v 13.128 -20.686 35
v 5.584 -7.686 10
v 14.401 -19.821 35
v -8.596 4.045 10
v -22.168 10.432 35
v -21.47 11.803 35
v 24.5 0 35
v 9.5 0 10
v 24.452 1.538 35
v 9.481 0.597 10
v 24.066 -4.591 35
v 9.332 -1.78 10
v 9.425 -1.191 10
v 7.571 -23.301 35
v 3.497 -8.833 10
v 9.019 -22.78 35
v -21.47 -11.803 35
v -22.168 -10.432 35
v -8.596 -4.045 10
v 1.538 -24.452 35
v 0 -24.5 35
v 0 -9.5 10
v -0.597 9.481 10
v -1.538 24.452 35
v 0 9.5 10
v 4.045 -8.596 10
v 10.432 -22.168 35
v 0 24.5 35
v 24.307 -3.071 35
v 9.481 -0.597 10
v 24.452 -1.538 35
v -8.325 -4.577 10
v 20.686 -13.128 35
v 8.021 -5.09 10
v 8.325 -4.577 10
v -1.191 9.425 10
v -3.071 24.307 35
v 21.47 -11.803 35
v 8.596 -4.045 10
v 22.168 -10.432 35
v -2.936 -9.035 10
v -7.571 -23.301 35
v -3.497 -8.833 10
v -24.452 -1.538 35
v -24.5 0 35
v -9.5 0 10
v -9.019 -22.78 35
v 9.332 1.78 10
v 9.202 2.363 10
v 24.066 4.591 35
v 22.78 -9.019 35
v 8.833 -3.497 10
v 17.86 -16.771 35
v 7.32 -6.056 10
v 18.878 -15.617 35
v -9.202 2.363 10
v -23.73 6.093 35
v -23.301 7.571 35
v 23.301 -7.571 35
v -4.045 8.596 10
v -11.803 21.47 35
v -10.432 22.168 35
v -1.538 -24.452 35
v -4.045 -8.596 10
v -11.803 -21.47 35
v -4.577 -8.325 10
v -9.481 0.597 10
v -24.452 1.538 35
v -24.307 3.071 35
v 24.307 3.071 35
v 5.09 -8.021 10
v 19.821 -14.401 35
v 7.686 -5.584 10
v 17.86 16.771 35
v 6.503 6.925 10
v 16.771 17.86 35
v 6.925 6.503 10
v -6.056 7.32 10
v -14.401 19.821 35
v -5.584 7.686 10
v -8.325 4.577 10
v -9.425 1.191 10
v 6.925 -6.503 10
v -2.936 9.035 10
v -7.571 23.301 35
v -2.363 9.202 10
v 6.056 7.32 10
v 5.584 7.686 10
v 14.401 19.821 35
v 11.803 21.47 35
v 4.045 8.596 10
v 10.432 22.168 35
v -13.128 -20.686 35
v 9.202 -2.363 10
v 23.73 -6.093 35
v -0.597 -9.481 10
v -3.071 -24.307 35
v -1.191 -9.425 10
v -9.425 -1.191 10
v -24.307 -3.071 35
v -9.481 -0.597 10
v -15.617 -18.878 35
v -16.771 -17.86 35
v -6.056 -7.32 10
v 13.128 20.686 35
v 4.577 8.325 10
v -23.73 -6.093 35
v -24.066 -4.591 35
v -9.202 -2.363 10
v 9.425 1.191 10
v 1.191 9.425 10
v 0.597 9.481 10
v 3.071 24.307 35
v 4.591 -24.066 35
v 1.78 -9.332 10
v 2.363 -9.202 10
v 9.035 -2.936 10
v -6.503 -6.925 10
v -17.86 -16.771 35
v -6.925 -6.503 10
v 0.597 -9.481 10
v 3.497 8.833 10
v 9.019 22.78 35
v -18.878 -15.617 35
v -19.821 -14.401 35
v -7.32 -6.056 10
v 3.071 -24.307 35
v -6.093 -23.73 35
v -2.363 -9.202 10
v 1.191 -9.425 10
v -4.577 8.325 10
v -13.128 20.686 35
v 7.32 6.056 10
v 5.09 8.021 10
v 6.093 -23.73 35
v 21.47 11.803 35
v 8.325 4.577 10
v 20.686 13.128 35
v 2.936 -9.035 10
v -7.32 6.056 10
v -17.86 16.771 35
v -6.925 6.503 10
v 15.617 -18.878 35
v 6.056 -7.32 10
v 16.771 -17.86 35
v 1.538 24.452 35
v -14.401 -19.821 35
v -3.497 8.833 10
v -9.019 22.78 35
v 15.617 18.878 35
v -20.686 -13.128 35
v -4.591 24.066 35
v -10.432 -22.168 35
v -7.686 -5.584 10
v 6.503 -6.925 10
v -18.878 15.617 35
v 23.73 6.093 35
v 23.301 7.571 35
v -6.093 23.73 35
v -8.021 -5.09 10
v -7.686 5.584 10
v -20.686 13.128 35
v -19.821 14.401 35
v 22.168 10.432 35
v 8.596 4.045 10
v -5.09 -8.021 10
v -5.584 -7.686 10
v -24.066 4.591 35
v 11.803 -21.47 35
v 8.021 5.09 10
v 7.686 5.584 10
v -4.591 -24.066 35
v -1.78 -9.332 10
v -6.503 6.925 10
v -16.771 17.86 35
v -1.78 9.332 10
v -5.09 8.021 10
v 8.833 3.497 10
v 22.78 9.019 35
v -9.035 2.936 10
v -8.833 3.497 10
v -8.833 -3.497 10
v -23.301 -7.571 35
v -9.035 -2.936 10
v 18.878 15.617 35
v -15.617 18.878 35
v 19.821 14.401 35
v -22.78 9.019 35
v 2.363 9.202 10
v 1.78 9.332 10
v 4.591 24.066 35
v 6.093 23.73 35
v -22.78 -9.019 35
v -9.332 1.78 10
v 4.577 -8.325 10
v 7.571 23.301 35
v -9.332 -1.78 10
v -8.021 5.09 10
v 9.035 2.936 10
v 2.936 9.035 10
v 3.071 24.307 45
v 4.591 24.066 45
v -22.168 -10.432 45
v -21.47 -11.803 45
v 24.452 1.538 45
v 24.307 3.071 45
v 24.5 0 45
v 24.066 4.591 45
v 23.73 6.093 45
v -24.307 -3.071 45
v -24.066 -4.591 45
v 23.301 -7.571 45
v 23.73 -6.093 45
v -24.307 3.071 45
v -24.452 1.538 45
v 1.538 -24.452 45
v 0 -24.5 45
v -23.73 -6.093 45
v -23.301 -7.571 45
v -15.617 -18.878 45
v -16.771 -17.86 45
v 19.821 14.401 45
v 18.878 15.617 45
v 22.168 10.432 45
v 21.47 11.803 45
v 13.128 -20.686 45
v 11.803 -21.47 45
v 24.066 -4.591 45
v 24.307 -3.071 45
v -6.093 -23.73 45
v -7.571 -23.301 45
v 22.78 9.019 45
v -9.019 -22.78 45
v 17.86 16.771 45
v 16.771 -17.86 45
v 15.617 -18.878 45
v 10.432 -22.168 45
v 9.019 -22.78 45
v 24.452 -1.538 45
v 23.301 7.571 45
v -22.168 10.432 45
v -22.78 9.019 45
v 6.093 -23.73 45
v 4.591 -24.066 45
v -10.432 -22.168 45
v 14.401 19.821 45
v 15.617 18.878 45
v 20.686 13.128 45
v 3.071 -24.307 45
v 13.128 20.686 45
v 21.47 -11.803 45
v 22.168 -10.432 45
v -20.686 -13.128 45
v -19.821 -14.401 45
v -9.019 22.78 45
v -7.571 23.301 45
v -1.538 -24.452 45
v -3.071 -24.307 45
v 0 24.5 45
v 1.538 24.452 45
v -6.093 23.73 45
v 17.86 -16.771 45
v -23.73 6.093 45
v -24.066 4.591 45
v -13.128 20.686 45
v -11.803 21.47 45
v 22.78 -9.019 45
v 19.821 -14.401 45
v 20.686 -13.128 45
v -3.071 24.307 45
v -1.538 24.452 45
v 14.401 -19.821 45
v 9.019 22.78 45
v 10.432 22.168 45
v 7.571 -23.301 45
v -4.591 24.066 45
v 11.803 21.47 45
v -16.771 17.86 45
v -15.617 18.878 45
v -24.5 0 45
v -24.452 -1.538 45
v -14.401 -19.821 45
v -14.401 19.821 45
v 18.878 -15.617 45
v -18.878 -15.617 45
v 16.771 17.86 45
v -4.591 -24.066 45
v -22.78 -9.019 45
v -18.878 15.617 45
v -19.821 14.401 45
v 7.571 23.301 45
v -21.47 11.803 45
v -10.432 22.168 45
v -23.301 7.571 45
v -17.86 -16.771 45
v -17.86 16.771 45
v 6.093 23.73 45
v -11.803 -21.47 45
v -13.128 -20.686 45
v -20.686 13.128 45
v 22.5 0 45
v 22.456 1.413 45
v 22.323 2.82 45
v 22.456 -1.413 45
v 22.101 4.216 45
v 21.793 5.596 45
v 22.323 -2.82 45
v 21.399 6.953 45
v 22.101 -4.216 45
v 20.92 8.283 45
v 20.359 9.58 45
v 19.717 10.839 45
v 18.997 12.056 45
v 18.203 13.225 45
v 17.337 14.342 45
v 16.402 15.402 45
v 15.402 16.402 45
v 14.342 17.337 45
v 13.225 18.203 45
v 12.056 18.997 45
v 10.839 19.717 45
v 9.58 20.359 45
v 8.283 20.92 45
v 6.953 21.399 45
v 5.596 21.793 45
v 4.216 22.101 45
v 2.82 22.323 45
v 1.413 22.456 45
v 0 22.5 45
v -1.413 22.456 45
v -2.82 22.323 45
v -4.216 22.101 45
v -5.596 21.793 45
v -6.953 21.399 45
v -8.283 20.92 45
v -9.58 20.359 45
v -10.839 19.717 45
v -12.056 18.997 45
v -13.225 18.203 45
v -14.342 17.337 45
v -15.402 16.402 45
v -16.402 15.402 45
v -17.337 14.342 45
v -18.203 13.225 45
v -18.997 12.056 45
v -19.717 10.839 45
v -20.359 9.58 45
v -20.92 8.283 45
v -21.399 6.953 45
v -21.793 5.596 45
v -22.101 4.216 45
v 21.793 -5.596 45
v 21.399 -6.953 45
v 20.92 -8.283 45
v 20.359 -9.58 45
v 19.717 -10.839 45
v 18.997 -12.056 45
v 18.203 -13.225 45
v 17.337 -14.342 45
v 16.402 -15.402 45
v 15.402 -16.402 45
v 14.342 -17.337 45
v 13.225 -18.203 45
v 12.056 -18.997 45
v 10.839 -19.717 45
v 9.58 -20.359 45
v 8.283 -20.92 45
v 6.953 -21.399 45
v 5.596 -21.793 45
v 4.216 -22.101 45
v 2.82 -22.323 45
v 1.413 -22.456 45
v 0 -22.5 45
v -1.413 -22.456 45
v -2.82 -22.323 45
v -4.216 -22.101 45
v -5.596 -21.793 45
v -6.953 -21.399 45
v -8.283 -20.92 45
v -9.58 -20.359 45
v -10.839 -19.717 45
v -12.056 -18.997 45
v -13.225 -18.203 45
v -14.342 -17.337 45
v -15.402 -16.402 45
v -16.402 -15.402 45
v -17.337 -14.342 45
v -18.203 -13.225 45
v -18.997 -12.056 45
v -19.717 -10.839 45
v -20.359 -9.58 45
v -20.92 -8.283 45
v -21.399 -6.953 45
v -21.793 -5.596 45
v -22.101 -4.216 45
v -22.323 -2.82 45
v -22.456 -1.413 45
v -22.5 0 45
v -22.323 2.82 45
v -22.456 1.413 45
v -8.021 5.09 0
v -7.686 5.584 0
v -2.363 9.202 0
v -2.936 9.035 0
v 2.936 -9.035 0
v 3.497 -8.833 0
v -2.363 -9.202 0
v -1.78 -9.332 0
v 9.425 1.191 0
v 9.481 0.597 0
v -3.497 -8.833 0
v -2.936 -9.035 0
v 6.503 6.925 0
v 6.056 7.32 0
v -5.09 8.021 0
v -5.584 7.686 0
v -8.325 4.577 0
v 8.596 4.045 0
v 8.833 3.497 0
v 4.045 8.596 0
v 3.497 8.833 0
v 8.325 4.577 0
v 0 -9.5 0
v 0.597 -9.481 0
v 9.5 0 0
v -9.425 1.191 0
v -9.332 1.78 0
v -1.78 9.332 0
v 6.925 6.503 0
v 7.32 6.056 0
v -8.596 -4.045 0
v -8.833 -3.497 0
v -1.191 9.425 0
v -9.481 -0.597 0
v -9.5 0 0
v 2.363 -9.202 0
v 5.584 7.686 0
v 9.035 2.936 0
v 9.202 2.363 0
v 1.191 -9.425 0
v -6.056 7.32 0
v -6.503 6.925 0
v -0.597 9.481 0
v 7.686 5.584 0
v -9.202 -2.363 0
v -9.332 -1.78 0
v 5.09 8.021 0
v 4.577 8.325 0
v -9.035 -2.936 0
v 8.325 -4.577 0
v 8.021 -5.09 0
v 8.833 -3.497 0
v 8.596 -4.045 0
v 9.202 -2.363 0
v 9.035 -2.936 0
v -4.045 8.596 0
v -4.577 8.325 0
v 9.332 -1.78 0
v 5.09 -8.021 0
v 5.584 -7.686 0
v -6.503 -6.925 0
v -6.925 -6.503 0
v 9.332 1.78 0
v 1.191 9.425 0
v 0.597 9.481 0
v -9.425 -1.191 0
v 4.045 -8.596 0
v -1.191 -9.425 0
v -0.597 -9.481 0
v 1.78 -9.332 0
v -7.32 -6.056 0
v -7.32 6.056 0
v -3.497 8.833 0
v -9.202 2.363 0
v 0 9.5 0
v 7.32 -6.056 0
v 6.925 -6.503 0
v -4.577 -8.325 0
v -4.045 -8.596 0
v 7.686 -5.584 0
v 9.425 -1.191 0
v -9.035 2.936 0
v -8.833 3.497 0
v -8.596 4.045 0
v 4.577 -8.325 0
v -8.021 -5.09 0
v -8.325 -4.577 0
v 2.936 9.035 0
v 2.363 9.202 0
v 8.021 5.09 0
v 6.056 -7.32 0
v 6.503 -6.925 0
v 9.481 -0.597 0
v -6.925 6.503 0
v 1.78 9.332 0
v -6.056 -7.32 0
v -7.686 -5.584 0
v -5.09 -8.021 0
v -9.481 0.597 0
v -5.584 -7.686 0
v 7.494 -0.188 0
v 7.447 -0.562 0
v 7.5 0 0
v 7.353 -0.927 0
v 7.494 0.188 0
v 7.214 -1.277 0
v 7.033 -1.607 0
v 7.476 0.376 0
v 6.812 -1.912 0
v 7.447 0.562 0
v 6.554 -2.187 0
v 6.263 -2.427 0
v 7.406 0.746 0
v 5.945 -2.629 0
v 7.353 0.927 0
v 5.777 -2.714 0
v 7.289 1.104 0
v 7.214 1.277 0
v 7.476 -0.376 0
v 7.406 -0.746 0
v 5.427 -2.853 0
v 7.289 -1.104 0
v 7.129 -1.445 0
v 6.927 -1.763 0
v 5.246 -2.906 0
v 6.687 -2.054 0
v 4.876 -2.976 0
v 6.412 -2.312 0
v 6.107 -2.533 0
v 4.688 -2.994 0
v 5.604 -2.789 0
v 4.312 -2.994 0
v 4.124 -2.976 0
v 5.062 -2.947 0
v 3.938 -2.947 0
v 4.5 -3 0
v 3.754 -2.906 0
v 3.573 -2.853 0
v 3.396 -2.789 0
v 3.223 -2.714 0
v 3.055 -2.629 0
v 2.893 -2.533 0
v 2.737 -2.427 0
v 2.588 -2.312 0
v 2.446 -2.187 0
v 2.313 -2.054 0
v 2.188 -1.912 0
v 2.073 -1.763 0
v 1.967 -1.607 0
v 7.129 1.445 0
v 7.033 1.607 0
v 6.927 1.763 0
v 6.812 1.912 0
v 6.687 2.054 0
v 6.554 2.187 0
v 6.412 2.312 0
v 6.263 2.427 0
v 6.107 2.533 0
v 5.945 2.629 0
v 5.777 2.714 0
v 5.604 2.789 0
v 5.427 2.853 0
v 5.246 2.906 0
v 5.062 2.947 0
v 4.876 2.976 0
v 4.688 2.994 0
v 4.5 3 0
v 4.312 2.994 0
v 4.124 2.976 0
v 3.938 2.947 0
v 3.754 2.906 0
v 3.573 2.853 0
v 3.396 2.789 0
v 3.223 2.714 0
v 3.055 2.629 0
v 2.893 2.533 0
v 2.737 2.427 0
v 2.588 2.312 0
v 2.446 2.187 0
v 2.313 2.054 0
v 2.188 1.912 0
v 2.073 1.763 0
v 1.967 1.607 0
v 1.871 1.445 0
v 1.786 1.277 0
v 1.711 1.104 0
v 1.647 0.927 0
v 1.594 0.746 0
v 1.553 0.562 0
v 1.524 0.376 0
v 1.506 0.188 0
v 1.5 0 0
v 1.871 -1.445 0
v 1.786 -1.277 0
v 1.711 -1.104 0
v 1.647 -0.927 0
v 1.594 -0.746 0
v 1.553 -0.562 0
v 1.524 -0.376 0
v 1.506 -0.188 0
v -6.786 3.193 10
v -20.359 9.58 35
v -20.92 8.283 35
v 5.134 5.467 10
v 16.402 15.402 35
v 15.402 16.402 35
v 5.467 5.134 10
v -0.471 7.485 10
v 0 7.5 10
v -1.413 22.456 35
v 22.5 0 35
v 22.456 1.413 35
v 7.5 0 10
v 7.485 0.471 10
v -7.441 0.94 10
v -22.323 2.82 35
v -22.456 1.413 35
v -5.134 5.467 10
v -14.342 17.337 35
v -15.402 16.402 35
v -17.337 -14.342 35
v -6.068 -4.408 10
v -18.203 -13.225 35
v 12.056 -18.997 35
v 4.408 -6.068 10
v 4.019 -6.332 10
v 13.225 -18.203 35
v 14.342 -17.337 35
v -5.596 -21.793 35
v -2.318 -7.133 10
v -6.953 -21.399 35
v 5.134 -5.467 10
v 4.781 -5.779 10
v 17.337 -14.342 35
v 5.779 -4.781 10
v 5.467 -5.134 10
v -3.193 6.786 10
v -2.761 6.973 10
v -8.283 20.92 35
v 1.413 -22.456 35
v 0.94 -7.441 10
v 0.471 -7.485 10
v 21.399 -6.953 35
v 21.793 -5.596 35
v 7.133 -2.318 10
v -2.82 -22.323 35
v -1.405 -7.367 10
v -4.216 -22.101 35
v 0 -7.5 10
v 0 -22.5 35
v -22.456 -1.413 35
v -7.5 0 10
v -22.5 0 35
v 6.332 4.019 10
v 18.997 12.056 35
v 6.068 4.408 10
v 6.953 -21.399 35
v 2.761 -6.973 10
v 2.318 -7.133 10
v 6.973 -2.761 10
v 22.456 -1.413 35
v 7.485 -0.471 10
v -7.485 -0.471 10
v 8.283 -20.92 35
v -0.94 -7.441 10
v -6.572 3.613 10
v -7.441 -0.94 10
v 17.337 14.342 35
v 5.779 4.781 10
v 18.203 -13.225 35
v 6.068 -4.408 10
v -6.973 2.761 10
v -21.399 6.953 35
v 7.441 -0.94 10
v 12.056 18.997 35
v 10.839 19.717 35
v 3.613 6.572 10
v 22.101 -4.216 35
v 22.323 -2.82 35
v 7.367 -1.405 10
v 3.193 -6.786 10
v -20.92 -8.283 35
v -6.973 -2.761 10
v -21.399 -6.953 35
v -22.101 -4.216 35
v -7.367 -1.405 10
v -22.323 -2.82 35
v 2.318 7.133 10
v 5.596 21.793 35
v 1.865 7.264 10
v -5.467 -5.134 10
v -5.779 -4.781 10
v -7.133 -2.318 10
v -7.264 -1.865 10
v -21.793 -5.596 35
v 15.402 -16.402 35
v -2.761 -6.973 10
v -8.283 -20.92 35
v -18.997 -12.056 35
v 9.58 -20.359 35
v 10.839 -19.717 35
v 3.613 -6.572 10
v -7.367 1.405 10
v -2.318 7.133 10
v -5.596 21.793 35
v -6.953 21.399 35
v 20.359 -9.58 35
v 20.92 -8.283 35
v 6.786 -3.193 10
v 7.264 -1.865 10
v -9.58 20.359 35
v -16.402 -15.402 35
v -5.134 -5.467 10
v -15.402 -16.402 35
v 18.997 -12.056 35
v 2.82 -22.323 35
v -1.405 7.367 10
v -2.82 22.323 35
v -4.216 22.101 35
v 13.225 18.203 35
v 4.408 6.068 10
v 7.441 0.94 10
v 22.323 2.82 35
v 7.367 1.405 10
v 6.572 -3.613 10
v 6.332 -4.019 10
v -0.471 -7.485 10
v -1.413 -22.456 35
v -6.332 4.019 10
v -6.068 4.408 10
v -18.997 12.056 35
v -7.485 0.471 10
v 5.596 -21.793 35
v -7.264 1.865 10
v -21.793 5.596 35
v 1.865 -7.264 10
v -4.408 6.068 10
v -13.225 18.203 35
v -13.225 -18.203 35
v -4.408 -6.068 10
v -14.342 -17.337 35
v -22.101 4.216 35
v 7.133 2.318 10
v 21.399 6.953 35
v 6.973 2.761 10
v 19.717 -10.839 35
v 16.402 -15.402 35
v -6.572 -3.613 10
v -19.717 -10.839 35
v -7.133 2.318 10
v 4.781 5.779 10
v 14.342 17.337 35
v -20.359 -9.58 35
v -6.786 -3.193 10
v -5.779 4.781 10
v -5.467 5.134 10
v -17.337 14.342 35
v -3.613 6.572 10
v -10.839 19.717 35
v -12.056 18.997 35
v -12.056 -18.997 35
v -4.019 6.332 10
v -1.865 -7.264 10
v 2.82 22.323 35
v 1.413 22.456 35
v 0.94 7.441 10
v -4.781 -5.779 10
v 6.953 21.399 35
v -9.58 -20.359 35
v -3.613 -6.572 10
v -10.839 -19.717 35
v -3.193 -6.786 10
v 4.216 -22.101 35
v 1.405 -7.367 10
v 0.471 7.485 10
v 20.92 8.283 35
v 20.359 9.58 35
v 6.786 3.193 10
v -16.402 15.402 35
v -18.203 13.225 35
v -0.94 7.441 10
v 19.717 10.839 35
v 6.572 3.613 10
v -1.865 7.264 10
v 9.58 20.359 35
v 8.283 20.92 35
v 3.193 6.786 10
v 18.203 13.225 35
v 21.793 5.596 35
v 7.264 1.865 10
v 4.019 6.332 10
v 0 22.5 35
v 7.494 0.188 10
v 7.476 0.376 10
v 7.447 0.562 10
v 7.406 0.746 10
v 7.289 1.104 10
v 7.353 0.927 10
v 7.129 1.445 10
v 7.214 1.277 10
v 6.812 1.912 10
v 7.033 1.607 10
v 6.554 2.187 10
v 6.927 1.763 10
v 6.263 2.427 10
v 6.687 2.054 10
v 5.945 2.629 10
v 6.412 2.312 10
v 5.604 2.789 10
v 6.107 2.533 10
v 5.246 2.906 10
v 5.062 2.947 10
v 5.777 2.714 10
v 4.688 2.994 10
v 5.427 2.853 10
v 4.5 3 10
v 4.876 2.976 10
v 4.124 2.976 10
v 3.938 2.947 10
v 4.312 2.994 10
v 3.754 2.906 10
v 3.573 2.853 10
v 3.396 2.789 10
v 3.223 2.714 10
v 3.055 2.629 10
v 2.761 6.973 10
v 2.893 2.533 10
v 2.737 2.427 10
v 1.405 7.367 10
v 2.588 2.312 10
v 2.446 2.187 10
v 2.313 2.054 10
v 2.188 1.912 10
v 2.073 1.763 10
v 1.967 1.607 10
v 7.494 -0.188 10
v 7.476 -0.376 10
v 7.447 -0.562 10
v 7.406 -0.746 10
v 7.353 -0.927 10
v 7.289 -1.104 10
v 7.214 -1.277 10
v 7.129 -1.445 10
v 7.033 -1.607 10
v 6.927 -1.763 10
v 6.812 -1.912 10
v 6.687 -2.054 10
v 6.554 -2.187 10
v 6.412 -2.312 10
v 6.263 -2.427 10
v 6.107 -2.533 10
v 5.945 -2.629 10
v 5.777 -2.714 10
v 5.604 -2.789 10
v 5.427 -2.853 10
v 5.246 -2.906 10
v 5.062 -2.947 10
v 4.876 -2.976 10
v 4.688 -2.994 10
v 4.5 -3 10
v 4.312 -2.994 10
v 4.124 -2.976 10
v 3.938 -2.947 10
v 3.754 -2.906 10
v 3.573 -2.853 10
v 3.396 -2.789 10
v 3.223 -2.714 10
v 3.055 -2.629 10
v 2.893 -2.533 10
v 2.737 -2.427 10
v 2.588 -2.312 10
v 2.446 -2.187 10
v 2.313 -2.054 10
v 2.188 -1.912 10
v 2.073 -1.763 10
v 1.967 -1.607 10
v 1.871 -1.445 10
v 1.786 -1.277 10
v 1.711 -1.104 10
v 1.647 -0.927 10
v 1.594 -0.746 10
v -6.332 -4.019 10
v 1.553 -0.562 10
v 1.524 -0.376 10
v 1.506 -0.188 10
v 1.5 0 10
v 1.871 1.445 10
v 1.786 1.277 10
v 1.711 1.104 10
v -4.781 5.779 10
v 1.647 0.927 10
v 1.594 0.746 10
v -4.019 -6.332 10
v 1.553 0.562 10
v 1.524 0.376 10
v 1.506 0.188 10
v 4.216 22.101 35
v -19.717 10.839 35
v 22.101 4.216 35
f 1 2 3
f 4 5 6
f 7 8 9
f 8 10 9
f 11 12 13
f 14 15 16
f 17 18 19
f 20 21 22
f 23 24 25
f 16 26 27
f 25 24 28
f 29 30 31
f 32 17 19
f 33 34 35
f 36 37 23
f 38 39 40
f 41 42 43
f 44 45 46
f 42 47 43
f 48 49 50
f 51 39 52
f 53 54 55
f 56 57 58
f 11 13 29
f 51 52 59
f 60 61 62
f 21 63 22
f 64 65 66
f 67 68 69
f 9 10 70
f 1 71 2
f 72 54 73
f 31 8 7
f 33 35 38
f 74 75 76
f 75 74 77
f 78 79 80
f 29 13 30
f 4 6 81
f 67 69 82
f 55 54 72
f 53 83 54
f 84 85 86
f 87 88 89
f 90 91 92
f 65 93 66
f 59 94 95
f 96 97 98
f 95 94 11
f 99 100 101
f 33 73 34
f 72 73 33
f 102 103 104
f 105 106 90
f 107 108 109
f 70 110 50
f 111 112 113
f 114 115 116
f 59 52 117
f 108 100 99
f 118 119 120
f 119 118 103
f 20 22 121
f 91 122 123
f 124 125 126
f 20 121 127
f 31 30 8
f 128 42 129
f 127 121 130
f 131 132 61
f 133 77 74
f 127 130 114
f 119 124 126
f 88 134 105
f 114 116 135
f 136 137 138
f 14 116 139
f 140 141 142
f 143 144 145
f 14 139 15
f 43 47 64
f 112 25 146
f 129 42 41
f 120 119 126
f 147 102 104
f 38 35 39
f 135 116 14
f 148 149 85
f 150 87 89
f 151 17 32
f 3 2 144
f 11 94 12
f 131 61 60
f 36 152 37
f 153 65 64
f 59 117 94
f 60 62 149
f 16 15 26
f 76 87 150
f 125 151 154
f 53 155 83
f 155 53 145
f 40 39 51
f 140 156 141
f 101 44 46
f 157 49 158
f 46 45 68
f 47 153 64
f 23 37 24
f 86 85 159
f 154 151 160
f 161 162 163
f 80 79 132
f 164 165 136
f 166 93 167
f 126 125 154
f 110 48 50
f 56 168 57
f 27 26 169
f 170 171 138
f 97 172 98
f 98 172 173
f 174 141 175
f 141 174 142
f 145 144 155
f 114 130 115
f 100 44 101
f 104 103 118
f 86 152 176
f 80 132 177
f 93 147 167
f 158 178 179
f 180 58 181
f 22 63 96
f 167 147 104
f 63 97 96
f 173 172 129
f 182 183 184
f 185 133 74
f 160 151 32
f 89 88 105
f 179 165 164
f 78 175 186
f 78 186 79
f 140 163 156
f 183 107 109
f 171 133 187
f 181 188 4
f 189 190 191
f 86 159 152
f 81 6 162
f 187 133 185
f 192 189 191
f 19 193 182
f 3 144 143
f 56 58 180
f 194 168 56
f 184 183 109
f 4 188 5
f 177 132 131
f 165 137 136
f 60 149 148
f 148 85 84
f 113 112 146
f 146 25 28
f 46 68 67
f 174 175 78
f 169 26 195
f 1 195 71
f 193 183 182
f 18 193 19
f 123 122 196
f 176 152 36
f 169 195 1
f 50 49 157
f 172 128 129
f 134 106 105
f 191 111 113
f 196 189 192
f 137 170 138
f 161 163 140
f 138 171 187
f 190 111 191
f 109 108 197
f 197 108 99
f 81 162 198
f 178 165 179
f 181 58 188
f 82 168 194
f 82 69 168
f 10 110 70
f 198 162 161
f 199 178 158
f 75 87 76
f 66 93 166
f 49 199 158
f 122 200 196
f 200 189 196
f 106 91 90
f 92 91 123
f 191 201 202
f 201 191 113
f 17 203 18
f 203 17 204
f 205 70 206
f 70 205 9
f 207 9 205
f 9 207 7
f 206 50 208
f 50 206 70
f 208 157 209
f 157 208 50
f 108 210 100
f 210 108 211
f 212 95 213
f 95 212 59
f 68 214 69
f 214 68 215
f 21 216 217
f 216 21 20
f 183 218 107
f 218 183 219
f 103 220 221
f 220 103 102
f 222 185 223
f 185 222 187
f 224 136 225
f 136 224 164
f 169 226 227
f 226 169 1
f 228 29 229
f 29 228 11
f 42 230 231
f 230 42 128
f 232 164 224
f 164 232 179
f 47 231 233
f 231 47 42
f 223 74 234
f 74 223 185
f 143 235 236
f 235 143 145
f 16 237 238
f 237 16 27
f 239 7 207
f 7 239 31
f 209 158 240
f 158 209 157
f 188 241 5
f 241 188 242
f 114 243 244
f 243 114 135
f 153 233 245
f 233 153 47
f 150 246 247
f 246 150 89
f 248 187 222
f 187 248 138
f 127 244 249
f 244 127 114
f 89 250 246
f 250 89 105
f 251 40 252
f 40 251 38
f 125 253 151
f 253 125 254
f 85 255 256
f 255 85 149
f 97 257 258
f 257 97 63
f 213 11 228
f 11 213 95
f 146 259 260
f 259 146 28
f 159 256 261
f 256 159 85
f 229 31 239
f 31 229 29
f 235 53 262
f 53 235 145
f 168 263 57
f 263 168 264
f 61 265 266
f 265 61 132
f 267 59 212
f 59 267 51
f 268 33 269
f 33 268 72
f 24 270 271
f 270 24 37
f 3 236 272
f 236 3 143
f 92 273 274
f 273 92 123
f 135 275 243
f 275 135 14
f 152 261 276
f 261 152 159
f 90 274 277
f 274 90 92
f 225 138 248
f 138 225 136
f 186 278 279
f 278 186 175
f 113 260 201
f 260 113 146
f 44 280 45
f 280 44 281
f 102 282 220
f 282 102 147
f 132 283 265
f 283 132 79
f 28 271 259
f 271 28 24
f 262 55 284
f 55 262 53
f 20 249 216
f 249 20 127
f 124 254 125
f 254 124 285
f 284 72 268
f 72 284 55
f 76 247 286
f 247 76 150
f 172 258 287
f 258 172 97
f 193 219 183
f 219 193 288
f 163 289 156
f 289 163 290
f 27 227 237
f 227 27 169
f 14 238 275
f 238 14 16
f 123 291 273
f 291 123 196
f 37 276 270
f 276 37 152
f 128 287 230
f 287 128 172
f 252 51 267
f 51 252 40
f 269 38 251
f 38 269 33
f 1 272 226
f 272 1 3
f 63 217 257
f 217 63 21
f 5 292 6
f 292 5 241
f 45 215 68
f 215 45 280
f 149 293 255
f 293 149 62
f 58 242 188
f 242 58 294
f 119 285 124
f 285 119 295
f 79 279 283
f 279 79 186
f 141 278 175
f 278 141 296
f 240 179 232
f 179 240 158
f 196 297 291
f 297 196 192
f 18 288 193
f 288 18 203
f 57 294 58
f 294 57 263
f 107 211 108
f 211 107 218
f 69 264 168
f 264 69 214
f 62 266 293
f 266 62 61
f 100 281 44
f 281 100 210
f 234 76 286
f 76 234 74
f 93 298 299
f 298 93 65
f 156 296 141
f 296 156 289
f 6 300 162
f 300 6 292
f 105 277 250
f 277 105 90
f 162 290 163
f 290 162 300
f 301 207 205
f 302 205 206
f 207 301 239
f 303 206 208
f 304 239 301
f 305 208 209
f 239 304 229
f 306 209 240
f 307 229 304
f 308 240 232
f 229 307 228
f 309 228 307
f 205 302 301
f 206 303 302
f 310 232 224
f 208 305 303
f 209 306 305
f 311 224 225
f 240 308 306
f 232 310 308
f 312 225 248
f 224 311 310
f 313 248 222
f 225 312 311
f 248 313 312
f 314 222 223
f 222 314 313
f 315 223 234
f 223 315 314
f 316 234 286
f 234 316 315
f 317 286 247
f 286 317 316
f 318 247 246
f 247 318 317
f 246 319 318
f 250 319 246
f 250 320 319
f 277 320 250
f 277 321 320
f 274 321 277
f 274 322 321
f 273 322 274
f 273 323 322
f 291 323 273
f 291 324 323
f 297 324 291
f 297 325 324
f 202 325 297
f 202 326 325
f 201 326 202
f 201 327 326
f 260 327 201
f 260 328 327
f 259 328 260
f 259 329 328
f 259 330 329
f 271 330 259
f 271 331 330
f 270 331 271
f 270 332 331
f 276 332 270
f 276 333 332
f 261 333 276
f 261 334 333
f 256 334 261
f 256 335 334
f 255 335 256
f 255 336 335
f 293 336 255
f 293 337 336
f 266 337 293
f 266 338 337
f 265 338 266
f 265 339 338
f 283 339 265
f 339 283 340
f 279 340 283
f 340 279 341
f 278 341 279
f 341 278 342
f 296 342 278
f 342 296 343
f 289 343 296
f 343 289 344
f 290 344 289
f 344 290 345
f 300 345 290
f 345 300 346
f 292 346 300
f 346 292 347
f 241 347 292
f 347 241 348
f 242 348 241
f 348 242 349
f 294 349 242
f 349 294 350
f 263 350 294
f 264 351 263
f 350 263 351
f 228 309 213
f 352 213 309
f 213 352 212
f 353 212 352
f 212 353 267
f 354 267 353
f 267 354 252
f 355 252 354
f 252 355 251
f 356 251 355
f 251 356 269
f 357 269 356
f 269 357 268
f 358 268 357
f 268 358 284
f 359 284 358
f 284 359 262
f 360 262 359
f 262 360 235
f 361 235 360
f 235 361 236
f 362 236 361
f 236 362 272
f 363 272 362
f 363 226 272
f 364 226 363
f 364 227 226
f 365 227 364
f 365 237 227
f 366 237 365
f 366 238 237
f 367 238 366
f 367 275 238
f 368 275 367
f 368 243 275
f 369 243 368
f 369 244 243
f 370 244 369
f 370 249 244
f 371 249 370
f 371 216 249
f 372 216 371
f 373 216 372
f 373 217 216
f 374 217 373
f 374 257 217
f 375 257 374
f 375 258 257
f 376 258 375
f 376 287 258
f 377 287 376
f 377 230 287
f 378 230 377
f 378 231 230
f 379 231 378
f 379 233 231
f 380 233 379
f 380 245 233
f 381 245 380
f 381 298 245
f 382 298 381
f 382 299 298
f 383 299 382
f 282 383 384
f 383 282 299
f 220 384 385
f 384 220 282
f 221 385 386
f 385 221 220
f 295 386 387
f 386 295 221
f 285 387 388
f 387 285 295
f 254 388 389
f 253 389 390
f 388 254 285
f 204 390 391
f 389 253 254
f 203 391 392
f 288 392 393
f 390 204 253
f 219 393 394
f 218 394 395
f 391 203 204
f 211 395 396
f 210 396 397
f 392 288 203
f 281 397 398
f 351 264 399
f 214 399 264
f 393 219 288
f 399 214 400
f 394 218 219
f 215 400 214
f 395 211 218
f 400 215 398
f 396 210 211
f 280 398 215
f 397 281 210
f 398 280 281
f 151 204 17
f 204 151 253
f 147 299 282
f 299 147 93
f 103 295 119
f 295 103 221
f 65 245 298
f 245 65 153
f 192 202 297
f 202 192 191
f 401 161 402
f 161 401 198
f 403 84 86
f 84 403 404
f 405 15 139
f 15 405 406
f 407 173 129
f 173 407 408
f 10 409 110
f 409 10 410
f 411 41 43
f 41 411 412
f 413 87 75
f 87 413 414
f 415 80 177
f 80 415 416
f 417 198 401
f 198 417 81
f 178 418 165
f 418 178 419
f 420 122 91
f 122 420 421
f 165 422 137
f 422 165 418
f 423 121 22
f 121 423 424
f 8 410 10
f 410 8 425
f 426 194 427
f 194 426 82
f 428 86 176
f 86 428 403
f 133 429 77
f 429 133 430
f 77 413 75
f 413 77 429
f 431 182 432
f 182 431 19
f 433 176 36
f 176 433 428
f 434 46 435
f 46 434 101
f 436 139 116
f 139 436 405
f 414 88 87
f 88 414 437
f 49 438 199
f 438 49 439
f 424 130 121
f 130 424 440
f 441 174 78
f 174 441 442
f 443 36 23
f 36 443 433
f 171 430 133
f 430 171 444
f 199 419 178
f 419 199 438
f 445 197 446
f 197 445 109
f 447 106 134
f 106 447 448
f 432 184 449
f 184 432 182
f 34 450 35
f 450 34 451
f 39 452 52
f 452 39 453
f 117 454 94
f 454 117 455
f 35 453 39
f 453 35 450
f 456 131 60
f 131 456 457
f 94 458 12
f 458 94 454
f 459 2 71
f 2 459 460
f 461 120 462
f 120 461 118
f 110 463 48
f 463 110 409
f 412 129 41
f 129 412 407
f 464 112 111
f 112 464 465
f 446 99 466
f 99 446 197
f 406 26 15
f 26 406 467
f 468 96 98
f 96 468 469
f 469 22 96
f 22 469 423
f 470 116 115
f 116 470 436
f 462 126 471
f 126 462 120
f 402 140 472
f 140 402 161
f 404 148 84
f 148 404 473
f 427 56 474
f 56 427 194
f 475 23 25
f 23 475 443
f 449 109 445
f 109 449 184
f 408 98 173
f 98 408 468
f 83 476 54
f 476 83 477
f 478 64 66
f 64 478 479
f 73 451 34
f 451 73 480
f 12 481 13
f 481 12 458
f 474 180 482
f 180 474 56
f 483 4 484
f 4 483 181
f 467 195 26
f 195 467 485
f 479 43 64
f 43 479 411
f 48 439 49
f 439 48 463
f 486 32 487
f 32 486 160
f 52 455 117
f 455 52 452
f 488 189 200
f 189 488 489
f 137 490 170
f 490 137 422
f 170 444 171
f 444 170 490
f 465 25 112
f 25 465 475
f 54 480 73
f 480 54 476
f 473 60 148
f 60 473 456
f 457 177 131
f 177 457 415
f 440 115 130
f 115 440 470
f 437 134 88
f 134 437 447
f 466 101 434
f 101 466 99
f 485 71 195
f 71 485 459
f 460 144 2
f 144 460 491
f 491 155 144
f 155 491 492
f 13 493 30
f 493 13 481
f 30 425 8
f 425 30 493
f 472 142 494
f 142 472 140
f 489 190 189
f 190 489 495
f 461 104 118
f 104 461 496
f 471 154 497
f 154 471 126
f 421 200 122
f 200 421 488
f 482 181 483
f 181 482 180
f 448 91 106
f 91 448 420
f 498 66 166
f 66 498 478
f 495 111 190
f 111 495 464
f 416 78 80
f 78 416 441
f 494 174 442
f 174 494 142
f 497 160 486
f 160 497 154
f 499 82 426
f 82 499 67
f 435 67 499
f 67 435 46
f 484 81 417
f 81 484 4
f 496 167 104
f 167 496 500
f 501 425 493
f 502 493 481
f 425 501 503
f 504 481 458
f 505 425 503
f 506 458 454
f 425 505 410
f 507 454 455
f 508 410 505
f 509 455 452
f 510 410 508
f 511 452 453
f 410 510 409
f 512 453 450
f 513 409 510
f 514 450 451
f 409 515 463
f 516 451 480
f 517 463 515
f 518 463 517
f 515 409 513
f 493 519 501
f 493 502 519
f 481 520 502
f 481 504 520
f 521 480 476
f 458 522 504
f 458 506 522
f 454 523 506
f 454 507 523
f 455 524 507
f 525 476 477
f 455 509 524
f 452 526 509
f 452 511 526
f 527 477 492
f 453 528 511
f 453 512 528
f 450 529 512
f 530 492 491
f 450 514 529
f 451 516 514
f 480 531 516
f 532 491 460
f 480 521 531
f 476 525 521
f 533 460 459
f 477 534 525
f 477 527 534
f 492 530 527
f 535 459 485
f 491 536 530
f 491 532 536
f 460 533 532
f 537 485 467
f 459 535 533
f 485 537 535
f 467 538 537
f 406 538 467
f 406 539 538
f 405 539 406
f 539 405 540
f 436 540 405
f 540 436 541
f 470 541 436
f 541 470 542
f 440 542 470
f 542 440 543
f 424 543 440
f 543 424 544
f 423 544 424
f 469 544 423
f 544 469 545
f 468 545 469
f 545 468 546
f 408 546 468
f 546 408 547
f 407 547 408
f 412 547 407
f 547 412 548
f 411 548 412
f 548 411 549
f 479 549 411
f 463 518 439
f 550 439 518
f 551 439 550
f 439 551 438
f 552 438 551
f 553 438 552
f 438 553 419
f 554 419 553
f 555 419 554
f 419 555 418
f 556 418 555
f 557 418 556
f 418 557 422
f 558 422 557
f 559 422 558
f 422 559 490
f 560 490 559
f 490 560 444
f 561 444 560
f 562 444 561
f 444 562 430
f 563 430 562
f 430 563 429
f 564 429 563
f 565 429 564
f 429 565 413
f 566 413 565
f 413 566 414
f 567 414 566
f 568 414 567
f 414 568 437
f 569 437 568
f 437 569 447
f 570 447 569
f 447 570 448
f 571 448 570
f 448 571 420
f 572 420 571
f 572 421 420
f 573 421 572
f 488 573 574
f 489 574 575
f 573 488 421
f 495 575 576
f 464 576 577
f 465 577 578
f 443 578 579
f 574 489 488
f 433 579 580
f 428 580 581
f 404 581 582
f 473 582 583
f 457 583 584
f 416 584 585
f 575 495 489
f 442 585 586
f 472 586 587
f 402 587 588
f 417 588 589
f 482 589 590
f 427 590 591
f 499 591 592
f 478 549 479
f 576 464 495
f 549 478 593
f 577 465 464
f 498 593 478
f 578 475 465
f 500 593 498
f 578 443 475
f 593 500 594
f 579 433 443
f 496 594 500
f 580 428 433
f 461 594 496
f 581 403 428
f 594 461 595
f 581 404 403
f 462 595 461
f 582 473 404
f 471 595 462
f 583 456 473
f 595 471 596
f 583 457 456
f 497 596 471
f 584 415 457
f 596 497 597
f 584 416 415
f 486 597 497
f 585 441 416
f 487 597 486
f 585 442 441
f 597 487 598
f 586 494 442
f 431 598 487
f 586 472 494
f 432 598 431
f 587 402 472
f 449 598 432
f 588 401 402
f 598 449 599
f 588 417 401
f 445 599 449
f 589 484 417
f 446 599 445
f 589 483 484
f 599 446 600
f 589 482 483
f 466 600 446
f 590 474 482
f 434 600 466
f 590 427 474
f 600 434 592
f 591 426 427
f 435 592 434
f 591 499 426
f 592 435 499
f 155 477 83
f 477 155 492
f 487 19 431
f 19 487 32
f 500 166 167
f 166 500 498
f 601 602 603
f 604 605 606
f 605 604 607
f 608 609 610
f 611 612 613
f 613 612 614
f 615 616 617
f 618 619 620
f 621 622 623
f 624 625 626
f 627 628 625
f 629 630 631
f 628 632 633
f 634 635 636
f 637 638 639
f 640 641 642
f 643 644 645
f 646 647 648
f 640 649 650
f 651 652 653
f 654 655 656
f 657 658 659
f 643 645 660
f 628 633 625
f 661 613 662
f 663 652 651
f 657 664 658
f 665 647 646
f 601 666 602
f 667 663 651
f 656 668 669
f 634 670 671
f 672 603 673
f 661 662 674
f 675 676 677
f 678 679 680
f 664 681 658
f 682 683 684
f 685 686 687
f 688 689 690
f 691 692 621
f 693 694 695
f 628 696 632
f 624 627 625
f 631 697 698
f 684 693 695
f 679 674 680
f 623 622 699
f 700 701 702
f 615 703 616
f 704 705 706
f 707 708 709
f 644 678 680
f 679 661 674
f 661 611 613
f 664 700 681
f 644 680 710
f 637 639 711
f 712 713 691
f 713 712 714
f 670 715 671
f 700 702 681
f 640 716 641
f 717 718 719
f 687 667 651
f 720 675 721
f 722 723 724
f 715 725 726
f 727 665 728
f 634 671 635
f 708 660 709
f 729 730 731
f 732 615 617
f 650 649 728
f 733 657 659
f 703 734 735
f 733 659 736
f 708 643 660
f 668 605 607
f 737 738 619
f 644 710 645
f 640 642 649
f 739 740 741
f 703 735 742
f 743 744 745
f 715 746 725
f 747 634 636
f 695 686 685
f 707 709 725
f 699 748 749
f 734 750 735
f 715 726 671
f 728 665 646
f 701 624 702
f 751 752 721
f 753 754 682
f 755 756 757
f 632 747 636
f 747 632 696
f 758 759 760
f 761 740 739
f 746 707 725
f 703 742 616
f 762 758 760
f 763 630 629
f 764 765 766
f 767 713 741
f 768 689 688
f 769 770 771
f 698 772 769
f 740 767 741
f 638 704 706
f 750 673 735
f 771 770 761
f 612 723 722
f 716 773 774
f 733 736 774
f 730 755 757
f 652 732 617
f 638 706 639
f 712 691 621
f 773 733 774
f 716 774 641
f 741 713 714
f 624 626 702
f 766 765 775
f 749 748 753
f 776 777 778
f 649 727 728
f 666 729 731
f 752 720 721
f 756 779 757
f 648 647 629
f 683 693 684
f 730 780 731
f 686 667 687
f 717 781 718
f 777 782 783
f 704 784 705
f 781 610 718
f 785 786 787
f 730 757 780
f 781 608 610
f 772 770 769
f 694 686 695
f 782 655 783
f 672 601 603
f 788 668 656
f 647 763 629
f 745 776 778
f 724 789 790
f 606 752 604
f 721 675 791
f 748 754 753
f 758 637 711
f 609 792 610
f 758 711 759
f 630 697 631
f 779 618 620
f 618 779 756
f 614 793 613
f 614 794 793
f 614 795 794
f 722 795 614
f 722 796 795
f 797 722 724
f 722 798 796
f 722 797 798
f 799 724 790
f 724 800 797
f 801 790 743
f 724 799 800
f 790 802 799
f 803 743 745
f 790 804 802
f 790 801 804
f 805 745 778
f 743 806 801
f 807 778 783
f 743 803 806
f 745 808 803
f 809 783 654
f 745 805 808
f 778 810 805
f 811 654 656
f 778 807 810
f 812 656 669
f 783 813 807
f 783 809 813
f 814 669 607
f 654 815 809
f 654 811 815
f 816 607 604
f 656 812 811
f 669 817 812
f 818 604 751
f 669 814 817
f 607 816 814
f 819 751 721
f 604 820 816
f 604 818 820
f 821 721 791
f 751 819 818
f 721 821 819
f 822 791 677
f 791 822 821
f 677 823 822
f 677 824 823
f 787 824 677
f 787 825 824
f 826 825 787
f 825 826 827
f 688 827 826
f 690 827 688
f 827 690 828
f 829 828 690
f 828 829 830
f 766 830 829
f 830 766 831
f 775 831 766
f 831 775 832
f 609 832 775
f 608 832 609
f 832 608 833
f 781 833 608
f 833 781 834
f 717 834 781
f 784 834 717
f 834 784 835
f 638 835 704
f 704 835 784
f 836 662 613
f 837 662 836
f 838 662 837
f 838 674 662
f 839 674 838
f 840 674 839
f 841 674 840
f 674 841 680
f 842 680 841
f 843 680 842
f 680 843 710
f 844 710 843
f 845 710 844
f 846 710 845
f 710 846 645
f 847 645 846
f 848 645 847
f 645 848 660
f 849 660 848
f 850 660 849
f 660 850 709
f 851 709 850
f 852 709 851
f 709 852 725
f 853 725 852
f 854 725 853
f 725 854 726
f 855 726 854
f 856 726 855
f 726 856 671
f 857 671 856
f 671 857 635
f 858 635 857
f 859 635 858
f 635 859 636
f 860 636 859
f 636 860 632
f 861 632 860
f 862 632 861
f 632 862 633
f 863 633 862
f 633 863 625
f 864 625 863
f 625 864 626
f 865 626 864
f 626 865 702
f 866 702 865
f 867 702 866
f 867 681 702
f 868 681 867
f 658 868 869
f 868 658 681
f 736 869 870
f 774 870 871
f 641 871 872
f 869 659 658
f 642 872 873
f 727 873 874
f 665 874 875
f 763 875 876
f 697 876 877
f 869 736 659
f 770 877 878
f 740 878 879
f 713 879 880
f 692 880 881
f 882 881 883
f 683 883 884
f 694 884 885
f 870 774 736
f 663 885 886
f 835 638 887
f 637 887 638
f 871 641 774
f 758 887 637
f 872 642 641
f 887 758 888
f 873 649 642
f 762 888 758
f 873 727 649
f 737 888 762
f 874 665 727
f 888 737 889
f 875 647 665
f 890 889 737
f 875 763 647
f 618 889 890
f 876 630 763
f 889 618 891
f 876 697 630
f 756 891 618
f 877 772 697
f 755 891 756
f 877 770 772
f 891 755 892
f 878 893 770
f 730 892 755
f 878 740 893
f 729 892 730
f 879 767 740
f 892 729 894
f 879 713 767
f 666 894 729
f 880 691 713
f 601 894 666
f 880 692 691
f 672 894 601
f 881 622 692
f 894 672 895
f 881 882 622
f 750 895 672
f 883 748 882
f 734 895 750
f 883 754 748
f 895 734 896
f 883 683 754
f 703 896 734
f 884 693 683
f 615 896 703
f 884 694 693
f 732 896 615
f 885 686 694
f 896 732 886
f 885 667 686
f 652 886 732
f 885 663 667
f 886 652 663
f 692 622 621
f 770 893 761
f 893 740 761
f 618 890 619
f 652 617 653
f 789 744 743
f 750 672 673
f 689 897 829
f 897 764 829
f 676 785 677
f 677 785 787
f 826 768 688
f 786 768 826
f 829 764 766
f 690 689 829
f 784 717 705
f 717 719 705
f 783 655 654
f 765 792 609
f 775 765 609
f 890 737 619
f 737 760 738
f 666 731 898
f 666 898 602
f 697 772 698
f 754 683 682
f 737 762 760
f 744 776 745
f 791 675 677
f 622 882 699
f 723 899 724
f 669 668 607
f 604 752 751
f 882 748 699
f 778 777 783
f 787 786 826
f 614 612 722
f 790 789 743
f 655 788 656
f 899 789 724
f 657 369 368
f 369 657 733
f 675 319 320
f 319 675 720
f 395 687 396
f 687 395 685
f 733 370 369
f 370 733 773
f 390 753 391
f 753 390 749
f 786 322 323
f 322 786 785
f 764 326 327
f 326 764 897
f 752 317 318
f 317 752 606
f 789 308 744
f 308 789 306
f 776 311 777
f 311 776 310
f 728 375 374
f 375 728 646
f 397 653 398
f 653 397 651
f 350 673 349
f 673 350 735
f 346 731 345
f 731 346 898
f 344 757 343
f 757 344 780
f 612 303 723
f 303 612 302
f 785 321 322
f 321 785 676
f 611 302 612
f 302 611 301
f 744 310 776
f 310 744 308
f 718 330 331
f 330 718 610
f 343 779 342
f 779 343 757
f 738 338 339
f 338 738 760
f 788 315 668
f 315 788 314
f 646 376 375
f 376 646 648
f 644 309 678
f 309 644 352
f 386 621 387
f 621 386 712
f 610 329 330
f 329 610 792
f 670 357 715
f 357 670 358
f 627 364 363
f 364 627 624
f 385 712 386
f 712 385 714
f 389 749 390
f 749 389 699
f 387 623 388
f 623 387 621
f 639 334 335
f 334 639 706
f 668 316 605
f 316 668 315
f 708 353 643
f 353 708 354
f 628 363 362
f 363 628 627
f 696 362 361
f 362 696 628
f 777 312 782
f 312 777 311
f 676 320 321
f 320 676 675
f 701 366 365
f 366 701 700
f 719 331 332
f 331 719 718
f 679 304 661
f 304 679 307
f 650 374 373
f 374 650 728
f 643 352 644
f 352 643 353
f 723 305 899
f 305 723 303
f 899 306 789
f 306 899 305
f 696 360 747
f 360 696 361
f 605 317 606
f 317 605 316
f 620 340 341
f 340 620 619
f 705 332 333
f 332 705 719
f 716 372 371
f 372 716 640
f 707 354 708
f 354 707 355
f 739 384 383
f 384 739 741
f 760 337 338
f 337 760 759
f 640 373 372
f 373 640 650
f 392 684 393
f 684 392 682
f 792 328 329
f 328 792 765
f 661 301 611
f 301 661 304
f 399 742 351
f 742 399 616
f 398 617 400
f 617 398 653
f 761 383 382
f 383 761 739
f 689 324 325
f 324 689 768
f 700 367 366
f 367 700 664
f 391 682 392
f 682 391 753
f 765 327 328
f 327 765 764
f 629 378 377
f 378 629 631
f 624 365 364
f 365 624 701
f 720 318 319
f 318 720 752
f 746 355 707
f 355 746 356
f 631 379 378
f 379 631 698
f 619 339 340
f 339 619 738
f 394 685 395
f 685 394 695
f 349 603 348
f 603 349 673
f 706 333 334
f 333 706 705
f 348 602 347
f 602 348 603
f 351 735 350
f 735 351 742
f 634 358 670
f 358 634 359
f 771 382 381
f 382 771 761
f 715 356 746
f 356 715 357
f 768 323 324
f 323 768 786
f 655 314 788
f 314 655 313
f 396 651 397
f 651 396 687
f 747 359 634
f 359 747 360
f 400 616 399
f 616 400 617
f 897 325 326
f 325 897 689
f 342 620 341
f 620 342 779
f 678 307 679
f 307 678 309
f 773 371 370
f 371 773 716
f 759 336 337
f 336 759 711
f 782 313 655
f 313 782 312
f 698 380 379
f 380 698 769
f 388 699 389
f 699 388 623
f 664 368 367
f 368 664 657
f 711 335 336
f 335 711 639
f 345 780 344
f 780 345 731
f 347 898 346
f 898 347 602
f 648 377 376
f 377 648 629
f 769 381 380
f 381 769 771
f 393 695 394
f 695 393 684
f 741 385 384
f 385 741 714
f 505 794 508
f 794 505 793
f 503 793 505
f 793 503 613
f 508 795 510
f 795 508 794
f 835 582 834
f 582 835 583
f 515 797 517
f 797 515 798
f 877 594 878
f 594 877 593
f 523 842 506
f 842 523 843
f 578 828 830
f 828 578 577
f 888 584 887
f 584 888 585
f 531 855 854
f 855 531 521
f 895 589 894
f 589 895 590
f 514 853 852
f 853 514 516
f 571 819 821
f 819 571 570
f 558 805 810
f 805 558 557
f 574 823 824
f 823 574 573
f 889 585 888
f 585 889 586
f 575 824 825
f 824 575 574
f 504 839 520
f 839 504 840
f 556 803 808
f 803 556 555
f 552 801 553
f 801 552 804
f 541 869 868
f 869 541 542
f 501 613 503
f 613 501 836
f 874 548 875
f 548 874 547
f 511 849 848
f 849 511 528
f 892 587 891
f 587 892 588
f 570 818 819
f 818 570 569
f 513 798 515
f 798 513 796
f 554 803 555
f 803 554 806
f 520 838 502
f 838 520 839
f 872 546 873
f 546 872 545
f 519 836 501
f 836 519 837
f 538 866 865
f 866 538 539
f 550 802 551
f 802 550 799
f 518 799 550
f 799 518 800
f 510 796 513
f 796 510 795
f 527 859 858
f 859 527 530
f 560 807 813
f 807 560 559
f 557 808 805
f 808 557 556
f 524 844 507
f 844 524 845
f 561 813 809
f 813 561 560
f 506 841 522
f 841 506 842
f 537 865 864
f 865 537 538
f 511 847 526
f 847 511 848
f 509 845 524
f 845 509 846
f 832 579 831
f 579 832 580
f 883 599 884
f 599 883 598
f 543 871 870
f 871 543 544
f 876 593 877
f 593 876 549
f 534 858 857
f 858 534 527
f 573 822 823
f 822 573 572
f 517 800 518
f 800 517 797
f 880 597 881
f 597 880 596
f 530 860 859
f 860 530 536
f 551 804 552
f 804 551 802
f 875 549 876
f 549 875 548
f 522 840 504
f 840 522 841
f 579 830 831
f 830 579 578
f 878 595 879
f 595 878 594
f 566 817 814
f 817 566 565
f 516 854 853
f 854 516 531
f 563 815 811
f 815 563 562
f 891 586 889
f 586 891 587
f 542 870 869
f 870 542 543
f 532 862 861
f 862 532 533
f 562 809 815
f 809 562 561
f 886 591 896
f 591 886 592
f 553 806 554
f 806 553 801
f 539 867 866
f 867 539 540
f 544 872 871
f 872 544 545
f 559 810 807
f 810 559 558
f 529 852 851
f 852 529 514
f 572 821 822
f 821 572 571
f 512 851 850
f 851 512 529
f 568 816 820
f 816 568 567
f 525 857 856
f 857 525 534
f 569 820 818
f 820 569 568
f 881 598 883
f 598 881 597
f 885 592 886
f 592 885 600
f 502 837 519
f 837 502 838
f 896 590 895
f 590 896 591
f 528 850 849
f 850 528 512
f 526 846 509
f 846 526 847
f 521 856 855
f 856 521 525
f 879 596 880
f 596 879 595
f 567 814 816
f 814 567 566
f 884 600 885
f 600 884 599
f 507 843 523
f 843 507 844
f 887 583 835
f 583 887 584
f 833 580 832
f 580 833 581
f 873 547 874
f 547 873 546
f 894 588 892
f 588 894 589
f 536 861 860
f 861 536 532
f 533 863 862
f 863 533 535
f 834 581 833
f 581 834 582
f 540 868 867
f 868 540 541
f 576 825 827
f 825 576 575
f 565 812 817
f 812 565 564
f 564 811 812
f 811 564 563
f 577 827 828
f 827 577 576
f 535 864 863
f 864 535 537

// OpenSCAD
main_radius = 22.5;
neck_radius = 9.5;
neck_length = 10;
taper_length = 25;
entry_radius = 3;
entry_offset = 4.5;
flange_depth = 10;
wall = 2;
$fn = 100;

module cylinder_bag_lid(main_radius = main_radius, neck_radius = neck_radius, neck_length = neck_length, taper_length = taper_length, entry_radius = entry_radius, flange_depth = flange_depth, wall = wall) {
    difference() {
        union() {
            translate([0, 0, neck_length]) cylinder(r1 = neck_radius, r2 = main_radius + wall, h = taper_length);
            translate([0, 0, neck_length + taper_length]) cylinder(r = main_radius + wall, h = flange_depth);
            cylinder (r = neck_radius, h = neck_length, $fn = $fn);
        }
        union() {
            translate([0, 0, neck_length]) cylinder(r1 = neck_radius - wall, r2 = main_radius, h = taper_length);
            translate([0, 0, neck_length + taper_length]) cylinder(r = main_radius, h = flange_depth);
            translate([entry_offset, 0, 0]) cylinder(r = entry_radius, h = neck_length);
        }
    }
}

cylinder_bag_lid();
